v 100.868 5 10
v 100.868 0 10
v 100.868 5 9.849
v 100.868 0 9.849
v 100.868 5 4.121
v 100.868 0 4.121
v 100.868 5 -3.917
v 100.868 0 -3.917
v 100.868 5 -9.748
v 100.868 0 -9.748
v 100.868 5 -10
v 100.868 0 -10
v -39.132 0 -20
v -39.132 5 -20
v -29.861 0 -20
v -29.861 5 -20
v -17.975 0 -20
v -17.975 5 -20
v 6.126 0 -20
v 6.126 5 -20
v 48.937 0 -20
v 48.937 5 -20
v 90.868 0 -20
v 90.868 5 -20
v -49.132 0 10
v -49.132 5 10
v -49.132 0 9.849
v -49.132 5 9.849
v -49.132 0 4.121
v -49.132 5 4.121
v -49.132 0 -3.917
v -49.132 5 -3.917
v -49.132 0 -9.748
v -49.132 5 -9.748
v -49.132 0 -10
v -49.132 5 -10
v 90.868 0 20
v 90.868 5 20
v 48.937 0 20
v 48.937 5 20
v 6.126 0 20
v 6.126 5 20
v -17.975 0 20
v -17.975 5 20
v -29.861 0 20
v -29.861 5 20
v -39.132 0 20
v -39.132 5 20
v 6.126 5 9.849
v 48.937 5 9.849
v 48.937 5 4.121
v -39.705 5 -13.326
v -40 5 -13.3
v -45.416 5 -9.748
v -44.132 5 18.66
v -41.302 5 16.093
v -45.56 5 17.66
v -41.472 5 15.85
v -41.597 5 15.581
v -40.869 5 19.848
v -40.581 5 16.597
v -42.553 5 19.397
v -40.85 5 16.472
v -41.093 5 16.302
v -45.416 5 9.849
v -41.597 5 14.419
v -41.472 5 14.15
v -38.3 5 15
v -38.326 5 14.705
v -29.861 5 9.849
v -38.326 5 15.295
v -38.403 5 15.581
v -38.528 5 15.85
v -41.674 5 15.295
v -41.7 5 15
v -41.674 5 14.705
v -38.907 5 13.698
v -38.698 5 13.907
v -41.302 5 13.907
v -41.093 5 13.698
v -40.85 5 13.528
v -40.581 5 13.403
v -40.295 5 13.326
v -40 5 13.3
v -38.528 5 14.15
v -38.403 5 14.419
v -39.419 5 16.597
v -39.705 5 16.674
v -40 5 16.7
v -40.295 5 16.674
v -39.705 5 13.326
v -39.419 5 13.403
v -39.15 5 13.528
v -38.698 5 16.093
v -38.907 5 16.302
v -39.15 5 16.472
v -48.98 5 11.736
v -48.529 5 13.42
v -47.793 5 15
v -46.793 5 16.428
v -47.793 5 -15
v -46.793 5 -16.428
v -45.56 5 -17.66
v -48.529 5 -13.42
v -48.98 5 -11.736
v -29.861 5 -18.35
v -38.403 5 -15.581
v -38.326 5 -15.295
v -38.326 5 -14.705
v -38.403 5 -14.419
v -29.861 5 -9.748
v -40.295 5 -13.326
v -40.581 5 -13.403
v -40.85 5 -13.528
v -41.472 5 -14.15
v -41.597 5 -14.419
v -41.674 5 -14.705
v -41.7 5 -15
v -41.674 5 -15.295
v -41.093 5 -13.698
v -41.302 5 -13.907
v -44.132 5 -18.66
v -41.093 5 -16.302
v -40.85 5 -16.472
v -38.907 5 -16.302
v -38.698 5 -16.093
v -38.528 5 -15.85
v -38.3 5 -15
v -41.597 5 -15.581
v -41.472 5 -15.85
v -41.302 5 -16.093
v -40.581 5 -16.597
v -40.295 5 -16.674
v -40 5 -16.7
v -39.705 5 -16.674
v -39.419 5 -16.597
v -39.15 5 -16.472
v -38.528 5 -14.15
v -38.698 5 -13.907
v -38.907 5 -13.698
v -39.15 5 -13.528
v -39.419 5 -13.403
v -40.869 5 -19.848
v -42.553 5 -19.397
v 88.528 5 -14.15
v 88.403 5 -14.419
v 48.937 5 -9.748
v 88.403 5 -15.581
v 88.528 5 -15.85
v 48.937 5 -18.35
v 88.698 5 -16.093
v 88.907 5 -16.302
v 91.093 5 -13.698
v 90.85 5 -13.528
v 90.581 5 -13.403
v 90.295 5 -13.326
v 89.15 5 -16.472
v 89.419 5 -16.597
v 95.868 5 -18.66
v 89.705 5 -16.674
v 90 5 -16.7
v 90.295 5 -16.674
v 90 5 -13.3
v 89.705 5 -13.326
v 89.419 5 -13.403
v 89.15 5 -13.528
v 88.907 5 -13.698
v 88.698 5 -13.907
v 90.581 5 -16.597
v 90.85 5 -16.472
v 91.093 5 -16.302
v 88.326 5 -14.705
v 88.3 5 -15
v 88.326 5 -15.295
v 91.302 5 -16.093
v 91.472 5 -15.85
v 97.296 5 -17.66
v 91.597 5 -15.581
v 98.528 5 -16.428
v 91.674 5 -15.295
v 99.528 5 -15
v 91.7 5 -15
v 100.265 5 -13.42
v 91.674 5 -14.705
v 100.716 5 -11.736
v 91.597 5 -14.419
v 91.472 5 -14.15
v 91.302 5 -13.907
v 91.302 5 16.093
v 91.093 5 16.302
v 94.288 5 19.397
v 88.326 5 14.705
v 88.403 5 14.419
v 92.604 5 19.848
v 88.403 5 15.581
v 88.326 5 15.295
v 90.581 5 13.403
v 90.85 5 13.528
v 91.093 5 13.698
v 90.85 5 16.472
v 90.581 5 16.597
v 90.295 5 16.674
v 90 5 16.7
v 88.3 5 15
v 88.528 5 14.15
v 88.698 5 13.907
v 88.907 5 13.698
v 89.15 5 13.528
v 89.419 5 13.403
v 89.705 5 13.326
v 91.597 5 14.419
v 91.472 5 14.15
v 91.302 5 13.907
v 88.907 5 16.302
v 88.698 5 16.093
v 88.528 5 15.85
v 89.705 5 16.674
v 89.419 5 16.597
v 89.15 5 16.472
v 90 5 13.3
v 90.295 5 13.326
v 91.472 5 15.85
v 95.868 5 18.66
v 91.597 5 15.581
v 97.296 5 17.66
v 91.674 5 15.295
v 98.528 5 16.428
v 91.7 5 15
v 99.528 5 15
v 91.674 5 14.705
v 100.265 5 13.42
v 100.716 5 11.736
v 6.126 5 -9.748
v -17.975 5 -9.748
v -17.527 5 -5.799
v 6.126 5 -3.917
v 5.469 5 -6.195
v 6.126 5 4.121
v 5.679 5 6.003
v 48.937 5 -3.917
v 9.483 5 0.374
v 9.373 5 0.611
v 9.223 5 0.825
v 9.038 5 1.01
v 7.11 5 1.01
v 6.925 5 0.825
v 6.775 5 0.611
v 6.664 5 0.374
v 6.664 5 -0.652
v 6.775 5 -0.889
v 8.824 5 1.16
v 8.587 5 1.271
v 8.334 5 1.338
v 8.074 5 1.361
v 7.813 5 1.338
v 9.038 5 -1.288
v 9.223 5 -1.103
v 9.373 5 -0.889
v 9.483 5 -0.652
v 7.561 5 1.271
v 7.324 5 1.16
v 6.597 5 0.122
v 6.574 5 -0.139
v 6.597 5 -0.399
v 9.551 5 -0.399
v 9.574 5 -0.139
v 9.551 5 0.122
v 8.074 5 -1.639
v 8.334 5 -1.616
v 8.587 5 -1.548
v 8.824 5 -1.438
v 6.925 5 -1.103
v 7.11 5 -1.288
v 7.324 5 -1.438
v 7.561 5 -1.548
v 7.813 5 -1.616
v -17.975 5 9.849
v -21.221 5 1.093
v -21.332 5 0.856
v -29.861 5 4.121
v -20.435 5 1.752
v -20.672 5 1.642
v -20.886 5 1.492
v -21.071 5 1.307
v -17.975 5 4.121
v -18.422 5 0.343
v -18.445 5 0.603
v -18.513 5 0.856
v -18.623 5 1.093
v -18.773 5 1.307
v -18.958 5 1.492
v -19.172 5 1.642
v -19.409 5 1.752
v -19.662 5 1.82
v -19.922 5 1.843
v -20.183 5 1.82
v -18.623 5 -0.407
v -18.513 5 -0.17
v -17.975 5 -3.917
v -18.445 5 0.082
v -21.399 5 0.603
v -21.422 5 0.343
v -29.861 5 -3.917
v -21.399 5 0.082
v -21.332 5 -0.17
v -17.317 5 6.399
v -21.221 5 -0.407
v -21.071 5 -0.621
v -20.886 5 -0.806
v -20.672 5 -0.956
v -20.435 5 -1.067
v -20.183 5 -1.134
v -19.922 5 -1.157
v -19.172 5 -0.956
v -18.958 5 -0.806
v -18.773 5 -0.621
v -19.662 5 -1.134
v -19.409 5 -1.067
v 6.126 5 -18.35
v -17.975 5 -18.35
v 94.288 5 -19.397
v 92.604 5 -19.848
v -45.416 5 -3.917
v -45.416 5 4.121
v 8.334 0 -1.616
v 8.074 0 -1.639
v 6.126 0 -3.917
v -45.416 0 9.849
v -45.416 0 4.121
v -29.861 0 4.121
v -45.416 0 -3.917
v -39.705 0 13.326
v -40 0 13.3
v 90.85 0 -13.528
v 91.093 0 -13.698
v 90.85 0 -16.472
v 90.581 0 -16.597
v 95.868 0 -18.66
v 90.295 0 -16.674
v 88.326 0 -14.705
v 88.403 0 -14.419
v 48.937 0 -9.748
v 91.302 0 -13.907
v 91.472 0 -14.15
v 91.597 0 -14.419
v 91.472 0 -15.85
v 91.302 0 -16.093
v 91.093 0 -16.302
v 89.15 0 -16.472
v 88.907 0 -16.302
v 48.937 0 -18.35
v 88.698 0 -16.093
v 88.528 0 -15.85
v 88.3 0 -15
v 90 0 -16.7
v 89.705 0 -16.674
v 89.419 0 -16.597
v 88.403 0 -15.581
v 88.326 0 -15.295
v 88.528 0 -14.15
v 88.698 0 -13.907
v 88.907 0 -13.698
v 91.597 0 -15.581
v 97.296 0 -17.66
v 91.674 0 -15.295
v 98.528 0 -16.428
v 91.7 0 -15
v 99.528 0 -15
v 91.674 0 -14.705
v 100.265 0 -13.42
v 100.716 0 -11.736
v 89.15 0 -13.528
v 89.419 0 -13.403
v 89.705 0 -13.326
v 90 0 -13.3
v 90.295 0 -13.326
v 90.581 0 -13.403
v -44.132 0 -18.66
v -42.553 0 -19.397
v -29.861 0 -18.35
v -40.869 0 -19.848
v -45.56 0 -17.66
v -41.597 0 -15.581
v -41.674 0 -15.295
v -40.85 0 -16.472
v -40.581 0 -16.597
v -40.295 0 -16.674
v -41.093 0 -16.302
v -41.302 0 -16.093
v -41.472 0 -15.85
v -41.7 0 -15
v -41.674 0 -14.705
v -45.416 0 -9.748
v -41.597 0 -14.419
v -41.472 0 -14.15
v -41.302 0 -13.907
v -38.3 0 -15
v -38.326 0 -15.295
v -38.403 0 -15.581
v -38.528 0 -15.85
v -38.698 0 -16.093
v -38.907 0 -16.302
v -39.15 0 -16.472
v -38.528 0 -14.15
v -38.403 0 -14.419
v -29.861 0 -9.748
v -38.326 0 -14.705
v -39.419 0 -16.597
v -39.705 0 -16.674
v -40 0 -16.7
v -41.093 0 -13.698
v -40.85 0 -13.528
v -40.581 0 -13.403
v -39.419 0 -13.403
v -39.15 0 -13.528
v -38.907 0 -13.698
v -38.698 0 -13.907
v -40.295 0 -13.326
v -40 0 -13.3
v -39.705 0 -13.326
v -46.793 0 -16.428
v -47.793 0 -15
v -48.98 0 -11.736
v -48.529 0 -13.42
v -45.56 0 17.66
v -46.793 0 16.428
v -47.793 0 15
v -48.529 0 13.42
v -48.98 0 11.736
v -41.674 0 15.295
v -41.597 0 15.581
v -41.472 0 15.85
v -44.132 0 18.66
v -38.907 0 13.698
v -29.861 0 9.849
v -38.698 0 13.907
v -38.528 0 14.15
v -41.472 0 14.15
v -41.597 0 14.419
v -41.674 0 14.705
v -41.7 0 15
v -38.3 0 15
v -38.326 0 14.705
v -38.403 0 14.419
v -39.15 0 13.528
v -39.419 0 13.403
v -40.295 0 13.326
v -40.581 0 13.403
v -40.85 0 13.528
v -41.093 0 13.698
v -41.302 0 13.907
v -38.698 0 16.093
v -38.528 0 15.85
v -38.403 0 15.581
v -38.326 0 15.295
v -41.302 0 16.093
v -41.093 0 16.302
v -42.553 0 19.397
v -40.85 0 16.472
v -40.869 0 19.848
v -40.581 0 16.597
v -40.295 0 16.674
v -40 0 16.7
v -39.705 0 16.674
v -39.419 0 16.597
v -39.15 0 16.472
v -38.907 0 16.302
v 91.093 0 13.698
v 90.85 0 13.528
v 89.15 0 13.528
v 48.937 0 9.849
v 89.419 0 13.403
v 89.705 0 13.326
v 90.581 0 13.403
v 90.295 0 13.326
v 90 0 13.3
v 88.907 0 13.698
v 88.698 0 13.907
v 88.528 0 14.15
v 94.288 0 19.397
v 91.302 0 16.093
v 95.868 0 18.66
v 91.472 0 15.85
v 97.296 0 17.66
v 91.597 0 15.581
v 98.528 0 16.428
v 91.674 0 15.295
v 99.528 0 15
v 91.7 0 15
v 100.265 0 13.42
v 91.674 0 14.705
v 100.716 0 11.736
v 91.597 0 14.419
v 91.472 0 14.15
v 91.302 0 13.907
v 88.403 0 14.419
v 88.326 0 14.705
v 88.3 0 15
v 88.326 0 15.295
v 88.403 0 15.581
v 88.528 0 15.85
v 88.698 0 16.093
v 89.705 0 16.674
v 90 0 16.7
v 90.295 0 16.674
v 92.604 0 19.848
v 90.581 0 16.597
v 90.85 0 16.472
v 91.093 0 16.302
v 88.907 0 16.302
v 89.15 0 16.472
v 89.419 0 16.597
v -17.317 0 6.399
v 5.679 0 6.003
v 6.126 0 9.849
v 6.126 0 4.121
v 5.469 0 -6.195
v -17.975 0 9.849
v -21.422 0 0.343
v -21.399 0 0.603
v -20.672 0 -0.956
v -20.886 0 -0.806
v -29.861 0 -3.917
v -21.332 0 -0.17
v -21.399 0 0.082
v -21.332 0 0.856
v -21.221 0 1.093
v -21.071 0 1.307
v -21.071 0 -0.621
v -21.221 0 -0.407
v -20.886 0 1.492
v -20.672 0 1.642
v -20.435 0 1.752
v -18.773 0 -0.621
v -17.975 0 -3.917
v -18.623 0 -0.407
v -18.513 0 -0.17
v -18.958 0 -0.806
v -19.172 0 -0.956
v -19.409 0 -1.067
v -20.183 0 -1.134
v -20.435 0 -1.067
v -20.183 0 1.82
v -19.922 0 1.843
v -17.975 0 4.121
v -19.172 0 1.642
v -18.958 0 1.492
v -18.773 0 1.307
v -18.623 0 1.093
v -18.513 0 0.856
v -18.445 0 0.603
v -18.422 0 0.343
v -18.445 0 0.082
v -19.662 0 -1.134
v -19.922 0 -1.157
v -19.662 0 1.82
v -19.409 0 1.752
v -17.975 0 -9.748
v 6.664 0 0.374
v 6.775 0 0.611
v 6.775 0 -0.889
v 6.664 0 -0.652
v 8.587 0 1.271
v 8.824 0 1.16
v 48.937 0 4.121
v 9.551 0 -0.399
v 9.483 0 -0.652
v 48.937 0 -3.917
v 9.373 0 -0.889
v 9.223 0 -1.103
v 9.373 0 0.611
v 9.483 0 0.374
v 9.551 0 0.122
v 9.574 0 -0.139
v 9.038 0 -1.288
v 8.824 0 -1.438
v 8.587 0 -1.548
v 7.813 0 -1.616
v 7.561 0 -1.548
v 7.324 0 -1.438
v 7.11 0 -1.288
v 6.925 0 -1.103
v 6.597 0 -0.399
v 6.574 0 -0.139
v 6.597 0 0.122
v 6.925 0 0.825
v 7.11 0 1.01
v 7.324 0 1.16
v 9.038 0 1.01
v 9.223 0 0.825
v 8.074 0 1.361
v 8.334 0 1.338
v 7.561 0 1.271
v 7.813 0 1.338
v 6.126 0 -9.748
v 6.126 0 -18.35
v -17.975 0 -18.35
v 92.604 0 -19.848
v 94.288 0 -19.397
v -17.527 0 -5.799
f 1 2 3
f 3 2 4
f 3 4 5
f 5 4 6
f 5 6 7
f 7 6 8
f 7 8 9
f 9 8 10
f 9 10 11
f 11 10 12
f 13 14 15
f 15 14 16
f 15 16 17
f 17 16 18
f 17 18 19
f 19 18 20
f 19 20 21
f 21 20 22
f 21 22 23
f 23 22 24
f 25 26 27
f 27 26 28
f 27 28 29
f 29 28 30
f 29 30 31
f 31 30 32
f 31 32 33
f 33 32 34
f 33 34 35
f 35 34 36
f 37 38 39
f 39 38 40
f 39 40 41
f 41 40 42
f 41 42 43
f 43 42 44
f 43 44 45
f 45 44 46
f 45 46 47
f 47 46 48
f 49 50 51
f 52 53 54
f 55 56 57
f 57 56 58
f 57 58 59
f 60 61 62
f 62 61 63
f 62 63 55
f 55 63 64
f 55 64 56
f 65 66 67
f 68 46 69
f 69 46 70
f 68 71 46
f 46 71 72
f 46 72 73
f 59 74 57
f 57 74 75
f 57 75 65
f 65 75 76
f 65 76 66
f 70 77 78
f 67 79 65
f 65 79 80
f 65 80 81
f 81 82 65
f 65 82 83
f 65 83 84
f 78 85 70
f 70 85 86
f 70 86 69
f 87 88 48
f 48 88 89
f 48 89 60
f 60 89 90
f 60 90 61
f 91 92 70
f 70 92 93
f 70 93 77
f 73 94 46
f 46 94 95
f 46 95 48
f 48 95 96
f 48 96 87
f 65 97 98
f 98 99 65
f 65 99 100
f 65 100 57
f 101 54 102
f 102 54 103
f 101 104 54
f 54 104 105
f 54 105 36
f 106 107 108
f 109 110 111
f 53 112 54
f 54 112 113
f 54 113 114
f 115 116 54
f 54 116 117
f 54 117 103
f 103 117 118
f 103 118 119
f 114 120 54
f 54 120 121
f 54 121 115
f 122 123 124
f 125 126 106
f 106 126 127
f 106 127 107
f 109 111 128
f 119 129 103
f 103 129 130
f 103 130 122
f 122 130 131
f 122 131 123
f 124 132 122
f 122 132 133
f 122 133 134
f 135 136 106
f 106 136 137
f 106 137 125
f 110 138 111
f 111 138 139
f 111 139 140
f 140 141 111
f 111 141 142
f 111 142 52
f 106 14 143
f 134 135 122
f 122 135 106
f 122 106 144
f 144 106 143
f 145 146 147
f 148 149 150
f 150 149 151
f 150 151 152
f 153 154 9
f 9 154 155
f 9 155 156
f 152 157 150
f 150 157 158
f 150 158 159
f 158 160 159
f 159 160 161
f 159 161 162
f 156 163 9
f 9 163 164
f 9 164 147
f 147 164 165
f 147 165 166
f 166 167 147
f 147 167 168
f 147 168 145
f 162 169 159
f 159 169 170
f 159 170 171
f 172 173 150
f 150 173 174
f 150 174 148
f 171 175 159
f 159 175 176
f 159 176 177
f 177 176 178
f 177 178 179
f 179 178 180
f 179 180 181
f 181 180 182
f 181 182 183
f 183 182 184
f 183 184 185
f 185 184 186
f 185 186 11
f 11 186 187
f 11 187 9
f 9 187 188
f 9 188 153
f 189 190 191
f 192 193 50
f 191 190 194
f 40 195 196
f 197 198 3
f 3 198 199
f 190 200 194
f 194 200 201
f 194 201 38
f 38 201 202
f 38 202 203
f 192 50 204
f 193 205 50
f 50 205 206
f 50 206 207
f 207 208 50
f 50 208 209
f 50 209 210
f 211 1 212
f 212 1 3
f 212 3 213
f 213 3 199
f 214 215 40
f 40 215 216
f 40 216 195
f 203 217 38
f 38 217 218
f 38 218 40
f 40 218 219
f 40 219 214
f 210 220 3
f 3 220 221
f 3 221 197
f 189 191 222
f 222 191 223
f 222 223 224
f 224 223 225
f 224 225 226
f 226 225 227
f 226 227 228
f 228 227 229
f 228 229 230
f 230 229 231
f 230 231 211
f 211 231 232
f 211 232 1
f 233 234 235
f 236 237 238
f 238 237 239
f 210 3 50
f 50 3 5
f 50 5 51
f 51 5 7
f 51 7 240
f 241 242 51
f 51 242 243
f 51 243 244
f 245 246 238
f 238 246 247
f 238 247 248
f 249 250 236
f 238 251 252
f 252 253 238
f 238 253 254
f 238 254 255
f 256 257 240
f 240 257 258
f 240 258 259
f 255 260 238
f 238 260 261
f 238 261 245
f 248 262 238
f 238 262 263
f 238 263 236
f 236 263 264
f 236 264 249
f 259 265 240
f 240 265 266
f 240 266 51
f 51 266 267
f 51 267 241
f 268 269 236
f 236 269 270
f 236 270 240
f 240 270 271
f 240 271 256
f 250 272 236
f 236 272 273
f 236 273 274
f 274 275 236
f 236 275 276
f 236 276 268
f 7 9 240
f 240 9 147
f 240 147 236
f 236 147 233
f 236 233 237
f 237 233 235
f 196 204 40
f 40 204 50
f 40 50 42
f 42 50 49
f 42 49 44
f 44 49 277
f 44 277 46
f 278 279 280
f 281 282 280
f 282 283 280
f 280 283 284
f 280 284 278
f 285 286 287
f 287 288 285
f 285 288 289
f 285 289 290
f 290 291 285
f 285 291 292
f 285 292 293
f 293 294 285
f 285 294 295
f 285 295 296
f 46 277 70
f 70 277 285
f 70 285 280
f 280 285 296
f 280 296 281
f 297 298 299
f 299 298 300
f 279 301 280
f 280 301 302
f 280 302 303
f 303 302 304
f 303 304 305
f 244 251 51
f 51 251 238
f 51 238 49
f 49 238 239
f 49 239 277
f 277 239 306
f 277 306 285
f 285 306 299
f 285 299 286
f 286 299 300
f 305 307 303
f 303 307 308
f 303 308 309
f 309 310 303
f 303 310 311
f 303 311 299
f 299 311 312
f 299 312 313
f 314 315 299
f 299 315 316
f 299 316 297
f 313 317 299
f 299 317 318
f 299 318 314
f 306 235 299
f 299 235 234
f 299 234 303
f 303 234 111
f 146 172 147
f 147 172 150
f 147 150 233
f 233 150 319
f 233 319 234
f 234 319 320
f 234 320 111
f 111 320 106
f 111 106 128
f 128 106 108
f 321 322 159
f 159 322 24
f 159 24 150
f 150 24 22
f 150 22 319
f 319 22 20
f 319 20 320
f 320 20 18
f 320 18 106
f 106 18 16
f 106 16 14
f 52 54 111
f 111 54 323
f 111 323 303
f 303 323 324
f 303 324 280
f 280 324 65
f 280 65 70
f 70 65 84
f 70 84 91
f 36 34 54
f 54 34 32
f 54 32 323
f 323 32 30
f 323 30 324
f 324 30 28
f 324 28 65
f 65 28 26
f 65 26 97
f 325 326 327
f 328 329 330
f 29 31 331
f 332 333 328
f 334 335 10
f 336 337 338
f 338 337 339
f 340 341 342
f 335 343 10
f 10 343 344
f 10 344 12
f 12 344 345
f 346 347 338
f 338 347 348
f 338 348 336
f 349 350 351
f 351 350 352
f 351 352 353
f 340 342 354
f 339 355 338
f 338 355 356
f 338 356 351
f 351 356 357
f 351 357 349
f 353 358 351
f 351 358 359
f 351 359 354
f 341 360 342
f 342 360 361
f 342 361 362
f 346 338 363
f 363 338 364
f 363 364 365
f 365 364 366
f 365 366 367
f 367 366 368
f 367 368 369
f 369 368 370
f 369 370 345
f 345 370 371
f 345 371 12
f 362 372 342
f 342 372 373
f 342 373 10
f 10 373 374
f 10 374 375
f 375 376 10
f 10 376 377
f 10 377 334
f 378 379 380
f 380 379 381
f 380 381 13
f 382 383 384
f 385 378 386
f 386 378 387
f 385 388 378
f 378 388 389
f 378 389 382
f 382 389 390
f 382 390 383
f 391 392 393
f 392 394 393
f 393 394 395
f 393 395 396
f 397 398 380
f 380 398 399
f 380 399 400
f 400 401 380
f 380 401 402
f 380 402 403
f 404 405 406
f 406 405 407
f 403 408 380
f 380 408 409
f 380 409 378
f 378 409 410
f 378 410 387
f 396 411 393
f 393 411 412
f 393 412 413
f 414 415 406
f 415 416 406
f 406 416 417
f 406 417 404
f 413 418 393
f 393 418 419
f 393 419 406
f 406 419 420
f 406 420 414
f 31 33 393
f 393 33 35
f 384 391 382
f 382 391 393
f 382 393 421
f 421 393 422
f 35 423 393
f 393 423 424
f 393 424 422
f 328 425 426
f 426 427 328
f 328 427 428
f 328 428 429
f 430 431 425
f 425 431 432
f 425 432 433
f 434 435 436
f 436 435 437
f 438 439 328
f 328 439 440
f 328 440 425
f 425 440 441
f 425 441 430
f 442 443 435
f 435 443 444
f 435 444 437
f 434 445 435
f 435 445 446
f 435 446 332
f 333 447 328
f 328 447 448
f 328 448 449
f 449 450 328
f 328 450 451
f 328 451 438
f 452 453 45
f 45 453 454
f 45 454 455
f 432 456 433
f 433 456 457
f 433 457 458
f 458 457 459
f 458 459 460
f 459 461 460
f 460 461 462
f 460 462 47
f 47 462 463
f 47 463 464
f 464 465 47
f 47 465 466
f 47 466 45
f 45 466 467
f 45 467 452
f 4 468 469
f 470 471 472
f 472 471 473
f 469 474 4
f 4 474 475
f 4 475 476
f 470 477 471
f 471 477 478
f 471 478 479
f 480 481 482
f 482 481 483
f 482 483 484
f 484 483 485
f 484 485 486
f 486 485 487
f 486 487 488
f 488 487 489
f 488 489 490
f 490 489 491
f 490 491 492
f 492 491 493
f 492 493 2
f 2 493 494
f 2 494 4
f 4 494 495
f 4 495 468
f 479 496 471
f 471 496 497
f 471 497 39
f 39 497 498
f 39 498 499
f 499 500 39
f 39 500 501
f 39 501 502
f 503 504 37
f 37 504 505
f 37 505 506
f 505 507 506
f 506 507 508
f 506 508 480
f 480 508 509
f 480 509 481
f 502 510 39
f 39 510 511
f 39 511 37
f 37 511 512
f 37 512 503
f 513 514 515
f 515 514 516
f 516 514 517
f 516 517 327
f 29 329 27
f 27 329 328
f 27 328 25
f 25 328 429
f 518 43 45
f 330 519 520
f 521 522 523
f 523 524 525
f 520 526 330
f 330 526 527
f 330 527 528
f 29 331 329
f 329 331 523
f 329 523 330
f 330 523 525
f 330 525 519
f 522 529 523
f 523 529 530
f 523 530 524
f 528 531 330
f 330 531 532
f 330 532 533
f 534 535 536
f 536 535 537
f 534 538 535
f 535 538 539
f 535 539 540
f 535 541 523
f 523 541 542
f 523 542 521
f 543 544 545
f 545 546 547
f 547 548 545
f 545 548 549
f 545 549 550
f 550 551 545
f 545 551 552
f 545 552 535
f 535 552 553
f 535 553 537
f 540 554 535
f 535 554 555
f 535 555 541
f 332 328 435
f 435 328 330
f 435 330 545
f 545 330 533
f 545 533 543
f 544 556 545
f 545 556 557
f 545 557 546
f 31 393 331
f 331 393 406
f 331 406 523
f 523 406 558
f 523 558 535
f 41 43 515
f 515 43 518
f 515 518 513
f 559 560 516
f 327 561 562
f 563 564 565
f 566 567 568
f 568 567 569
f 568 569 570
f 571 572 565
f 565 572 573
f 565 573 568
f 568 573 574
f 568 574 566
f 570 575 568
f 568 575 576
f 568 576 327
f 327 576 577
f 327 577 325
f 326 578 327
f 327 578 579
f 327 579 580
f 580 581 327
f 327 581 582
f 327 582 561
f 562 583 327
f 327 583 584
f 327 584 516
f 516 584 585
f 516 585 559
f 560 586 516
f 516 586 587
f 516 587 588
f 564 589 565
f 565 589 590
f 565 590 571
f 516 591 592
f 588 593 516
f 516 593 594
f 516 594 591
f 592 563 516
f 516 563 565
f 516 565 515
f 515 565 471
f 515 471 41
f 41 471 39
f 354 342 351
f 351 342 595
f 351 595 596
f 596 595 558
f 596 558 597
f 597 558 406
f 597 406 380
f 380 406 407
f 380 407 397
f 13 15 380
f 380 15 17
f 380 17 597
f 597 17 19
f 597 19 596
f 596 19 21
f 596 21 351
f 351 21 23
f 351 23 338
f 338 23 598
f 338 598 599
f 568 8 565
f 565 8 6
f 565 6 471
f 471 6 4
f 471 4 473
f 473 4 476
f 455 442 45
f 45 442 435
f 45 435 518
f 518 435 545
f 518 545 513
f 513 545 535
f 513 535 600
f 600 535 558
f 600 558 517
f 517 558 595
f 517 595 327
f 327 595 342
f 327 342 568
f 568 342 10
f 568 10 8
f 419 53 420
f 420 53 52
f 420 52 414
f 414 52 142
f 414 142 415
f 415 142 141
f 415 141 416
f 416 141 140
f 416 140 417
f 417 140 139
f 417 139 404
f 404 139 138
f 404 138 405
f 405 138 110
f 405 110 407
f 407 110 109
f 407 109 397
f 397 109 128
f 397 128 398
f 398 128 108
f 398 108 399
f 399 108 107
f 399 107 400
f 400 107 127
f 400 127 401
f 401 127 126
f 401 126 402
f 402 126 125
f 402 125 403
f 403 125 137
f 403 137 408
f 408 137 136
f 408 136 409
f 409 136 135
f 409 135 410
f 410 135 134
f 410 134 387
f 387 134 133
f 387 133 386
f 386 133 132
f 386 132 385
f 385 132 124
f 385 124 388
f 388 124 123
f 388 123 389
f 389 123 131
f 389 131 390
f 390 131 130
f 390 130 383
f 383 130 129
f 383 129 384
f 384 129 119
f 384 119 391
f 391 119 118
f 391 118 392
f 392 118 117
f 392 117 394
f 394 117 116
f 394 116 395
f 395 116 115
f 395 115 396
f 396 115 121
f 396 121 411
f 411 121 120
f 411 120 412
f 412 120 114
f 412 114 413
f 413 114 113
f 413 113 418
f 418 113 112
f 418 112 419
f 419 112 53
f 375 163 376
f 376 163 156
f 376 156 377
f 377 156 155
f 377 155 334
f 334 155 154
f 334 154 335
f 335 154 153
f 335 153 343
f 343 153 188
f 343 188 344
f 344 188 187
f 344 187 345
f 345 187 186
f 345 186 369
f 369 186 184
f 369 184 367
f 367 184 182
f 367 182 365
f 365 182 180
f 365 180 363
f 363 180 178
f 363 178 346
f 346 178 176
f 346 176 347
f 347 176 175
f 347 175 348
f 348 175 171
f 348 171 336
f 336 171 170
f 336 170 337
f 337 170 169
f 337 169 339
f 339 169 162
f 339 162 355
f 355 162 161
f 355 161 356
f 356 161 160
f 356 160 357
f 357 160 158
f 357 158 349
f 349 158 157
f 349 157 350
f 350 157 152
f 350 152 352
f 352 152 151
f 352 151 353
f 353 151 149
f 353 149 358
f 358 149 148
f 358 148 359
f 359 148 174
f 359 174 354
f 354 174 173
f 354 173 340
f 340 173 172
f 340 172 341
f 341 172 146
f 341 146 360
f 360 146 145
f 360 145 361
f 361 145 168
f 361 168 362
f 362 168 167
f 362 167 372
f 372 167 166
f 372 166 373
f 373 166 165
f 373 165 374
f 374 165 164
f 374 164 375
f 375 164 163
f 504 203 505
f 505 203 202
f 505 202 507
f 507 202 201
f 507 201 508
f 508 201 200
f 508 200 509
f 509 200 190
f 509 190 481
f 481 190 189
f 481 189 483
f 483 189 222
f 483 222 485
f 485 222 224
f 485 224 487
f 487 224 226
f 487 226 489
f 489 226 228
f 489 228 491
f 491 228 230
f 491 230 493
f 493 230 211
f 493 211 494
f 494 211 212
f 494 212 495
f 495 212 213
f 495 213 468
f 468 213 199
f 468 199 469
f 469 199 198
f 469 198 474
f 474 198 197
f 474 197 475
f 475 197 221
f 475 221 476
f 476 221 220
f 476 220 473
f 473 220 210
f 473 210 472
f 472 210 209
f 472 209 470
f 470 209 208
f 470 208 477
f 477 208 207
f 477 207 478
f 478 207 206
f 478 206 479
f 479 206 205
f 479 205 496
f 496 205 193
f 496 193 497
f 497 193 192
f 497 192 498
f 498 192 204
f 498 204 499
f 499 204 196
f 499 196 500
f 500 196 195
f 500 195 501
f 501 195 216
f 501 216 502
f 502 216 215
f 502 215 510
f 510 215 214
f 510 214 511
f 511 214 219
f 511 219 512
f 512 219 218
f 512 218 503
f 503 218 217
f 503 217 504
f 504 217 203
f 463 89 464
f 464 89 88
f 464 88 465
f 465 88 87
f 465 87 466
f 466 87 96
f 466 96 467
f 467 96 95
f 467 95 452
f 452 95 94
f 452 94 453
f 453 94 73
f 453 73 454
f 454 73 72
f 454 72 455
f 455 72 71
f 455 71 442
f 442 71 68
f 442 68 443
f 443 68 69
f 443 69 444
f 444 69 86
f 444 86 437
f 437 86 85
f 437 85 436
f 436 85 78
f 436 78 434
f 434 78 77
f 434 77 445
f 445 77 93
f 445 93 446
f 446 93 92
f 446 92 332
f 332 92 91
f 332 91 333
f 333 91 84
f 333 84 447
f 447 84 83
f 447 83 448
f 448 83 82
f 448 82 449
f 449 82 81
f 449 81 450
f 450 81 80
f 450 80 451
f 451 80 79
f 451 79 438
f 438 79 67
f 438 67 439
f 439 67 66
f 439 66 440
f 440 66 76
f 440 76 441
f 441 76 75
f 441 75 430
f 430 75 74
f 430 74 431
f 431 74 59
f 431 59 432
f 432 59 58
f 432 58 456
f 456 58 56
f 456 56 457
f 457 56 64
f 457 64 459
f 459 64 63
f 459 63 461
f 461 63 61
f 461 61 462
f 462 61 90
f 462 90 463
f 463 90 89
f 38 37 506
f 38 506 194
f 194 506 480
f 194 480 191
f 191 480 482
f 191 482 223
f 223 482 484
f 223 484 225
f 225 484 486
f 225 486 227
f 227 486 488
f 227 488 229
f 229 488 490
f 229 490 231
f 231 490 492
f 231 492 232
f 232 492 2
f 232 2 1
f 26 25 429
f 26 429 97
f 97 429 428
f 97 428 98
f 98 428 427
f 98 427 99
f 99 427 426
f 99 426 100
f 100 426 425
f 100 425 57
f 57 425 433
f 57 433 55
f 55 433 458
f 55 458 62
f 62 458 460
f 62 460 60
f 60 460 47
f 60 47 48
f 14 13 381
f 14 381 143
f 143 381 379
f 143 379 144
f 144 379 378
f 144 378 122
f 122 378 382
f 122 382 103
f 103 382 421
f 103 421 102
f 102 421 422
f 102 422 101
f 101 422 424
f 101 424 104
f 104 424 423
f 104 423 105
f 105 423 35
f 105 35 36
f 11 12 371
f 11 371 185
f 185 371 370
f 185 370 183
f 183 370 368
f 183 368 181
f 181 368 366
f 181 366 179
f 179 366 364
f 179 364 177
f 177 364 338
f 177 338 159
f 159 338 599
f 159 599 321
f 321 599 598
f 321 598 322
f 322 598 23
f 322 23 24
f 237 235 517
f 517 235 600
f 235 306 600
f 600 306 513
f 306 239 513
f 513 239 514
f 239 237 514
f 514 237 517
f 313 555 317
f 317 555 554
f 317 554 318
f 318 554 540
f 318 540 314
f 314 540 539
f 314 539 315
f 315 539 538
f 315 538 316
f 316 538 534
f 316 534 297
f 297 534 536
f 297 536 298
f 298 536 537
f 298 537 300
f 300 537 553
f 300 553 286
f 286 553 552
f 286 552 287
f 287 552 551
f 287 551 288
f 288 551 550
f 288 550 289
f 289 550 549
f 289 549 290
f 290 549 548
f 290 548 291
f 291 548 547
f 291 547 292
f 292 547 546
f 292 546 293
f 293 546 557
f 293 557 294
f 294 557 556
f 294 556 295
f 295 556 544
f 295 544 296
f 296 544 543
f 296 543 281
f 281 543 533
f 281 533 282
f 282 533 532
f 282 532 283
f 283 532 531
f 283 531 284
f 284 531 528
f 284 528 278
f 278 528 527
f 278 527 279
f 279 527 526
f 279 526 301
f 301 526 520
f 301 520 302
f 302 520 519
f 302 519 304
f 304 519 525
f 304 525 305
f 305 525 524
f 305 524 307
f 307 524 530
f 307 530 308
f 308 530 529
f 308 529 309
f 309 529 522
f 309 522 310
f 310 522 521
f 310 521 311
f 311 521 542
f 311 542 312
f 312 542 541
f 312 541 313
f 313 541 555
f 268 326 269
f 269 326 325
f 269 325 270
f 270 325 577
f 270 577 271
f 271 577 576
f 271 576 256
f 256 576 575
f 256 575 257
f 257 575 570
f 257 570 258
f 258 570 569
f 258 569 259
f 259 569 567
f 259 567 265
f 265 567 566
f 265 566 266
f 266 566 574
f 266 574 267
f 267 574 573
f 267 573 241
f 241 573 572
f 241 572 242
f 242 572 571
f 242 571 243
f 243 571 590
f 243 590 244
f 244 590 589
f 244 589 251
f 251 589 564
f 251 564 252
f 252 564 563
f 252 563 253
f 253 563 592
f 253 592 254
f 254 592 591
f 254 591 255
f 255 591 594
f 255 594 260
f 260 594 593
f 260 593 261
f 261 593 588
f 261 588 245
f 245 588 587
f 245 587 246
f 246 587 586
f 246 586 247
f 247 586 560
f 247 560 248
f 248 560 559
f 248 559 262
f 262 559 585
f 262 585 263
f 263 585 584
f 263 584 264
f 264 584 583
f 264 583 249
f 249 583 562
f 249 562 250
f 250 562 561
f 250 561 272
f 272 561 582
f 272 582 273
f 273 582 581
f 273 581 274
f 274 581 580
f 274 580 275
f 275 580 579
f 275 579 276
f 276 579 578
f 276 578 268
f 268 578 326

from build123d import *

# Parameters (mm, degrees)
SKETCH9_W           = 150
SKETCH9_H           = 40
BOSS_EXTRUDE5_DEPTH = 5
SKETCH11_R          = 1.7
CUT_EXTRUDE6_DEPTH  = 103.952823134
FILLET1_R           = 10
SKETCH13_R          = 1.5
CUT_EXTRUDE7_DEPTH  = 103.952823134


with BuildPart() as part:
    # Sketch9 → Boss-Extrude5 (new body)
    with BuildSketch(Plane(origin=(0, 0, 0), x_dir=(1, 0, 0), z_dir=(0, 1, 0))):
        with Locations((25.867654831, 0)):
            Rectangle(SKETCH9_W, SKETCH9_H)
    extrude(amount=BOSS_EXTRUDE5_DEPTH)

    # Sketch11 → Cut-Extrude6 (cut, through all)
    with BuildSketch(Plane(origin=(0, 5, 0), x_dir=(1, 0, 0), z_dir=(0, 1, 0))):
        with Locations(Location((-40, 15, 0), (0, 0, 270))):
            Circle(SKETCH11_R)
        with Locations(Location((90, 15, 0), (0, 0, 270))):
            Circle(SKETCH11_R)
        with Locations(Location((90, -15, 0), (0, 0, 270))):
            Circle(SKETCH11_R)
        with Locations(Location((-40, -15, 0), (0, 0, 270))):
            Circle(SKETCH11_R)
    extrude(amount=-CUT_EXTRUDE6_DEPTH, mode=Mode.SUBTRACT)

    # Fillet1
    fillet1_edges = [part.edges().sort_by_distance(p)[0] for p in [
        (100.867654831, 2.5, 20),
        (-49.132345169, 2.5, 20),
        (-49.132345169, 2.5, -20),
        (100.867654831, 2.5, -20),
    ]]
    fillet(fillet1_edges, radius=FILLET1_R)

    # Sketch13 → Cut-Extrude7 (cut, through all)
    with BuildSketch(Plane.XZ):
        with Locations(Location((8.073804278, -0.138958576, 0), (0, 0, 270))):
            Circle(SKETCH13_R)
        with Locations(Location((-19.922049564, 0.342879212, 0), (0, 0, 270))):
            Circle(SKETCH13_R)
        Polygon((-17.527391561, -5.799238749), (-17.317447953, 6.398954711), (5.679146274, 6.003159385), (5.469202666, -6.195034075), align=None)
    extrude(amount=-CUT_EXTRUDE7_DEPTH, mode=Mode.SUBTRACT)


solid = part.part
